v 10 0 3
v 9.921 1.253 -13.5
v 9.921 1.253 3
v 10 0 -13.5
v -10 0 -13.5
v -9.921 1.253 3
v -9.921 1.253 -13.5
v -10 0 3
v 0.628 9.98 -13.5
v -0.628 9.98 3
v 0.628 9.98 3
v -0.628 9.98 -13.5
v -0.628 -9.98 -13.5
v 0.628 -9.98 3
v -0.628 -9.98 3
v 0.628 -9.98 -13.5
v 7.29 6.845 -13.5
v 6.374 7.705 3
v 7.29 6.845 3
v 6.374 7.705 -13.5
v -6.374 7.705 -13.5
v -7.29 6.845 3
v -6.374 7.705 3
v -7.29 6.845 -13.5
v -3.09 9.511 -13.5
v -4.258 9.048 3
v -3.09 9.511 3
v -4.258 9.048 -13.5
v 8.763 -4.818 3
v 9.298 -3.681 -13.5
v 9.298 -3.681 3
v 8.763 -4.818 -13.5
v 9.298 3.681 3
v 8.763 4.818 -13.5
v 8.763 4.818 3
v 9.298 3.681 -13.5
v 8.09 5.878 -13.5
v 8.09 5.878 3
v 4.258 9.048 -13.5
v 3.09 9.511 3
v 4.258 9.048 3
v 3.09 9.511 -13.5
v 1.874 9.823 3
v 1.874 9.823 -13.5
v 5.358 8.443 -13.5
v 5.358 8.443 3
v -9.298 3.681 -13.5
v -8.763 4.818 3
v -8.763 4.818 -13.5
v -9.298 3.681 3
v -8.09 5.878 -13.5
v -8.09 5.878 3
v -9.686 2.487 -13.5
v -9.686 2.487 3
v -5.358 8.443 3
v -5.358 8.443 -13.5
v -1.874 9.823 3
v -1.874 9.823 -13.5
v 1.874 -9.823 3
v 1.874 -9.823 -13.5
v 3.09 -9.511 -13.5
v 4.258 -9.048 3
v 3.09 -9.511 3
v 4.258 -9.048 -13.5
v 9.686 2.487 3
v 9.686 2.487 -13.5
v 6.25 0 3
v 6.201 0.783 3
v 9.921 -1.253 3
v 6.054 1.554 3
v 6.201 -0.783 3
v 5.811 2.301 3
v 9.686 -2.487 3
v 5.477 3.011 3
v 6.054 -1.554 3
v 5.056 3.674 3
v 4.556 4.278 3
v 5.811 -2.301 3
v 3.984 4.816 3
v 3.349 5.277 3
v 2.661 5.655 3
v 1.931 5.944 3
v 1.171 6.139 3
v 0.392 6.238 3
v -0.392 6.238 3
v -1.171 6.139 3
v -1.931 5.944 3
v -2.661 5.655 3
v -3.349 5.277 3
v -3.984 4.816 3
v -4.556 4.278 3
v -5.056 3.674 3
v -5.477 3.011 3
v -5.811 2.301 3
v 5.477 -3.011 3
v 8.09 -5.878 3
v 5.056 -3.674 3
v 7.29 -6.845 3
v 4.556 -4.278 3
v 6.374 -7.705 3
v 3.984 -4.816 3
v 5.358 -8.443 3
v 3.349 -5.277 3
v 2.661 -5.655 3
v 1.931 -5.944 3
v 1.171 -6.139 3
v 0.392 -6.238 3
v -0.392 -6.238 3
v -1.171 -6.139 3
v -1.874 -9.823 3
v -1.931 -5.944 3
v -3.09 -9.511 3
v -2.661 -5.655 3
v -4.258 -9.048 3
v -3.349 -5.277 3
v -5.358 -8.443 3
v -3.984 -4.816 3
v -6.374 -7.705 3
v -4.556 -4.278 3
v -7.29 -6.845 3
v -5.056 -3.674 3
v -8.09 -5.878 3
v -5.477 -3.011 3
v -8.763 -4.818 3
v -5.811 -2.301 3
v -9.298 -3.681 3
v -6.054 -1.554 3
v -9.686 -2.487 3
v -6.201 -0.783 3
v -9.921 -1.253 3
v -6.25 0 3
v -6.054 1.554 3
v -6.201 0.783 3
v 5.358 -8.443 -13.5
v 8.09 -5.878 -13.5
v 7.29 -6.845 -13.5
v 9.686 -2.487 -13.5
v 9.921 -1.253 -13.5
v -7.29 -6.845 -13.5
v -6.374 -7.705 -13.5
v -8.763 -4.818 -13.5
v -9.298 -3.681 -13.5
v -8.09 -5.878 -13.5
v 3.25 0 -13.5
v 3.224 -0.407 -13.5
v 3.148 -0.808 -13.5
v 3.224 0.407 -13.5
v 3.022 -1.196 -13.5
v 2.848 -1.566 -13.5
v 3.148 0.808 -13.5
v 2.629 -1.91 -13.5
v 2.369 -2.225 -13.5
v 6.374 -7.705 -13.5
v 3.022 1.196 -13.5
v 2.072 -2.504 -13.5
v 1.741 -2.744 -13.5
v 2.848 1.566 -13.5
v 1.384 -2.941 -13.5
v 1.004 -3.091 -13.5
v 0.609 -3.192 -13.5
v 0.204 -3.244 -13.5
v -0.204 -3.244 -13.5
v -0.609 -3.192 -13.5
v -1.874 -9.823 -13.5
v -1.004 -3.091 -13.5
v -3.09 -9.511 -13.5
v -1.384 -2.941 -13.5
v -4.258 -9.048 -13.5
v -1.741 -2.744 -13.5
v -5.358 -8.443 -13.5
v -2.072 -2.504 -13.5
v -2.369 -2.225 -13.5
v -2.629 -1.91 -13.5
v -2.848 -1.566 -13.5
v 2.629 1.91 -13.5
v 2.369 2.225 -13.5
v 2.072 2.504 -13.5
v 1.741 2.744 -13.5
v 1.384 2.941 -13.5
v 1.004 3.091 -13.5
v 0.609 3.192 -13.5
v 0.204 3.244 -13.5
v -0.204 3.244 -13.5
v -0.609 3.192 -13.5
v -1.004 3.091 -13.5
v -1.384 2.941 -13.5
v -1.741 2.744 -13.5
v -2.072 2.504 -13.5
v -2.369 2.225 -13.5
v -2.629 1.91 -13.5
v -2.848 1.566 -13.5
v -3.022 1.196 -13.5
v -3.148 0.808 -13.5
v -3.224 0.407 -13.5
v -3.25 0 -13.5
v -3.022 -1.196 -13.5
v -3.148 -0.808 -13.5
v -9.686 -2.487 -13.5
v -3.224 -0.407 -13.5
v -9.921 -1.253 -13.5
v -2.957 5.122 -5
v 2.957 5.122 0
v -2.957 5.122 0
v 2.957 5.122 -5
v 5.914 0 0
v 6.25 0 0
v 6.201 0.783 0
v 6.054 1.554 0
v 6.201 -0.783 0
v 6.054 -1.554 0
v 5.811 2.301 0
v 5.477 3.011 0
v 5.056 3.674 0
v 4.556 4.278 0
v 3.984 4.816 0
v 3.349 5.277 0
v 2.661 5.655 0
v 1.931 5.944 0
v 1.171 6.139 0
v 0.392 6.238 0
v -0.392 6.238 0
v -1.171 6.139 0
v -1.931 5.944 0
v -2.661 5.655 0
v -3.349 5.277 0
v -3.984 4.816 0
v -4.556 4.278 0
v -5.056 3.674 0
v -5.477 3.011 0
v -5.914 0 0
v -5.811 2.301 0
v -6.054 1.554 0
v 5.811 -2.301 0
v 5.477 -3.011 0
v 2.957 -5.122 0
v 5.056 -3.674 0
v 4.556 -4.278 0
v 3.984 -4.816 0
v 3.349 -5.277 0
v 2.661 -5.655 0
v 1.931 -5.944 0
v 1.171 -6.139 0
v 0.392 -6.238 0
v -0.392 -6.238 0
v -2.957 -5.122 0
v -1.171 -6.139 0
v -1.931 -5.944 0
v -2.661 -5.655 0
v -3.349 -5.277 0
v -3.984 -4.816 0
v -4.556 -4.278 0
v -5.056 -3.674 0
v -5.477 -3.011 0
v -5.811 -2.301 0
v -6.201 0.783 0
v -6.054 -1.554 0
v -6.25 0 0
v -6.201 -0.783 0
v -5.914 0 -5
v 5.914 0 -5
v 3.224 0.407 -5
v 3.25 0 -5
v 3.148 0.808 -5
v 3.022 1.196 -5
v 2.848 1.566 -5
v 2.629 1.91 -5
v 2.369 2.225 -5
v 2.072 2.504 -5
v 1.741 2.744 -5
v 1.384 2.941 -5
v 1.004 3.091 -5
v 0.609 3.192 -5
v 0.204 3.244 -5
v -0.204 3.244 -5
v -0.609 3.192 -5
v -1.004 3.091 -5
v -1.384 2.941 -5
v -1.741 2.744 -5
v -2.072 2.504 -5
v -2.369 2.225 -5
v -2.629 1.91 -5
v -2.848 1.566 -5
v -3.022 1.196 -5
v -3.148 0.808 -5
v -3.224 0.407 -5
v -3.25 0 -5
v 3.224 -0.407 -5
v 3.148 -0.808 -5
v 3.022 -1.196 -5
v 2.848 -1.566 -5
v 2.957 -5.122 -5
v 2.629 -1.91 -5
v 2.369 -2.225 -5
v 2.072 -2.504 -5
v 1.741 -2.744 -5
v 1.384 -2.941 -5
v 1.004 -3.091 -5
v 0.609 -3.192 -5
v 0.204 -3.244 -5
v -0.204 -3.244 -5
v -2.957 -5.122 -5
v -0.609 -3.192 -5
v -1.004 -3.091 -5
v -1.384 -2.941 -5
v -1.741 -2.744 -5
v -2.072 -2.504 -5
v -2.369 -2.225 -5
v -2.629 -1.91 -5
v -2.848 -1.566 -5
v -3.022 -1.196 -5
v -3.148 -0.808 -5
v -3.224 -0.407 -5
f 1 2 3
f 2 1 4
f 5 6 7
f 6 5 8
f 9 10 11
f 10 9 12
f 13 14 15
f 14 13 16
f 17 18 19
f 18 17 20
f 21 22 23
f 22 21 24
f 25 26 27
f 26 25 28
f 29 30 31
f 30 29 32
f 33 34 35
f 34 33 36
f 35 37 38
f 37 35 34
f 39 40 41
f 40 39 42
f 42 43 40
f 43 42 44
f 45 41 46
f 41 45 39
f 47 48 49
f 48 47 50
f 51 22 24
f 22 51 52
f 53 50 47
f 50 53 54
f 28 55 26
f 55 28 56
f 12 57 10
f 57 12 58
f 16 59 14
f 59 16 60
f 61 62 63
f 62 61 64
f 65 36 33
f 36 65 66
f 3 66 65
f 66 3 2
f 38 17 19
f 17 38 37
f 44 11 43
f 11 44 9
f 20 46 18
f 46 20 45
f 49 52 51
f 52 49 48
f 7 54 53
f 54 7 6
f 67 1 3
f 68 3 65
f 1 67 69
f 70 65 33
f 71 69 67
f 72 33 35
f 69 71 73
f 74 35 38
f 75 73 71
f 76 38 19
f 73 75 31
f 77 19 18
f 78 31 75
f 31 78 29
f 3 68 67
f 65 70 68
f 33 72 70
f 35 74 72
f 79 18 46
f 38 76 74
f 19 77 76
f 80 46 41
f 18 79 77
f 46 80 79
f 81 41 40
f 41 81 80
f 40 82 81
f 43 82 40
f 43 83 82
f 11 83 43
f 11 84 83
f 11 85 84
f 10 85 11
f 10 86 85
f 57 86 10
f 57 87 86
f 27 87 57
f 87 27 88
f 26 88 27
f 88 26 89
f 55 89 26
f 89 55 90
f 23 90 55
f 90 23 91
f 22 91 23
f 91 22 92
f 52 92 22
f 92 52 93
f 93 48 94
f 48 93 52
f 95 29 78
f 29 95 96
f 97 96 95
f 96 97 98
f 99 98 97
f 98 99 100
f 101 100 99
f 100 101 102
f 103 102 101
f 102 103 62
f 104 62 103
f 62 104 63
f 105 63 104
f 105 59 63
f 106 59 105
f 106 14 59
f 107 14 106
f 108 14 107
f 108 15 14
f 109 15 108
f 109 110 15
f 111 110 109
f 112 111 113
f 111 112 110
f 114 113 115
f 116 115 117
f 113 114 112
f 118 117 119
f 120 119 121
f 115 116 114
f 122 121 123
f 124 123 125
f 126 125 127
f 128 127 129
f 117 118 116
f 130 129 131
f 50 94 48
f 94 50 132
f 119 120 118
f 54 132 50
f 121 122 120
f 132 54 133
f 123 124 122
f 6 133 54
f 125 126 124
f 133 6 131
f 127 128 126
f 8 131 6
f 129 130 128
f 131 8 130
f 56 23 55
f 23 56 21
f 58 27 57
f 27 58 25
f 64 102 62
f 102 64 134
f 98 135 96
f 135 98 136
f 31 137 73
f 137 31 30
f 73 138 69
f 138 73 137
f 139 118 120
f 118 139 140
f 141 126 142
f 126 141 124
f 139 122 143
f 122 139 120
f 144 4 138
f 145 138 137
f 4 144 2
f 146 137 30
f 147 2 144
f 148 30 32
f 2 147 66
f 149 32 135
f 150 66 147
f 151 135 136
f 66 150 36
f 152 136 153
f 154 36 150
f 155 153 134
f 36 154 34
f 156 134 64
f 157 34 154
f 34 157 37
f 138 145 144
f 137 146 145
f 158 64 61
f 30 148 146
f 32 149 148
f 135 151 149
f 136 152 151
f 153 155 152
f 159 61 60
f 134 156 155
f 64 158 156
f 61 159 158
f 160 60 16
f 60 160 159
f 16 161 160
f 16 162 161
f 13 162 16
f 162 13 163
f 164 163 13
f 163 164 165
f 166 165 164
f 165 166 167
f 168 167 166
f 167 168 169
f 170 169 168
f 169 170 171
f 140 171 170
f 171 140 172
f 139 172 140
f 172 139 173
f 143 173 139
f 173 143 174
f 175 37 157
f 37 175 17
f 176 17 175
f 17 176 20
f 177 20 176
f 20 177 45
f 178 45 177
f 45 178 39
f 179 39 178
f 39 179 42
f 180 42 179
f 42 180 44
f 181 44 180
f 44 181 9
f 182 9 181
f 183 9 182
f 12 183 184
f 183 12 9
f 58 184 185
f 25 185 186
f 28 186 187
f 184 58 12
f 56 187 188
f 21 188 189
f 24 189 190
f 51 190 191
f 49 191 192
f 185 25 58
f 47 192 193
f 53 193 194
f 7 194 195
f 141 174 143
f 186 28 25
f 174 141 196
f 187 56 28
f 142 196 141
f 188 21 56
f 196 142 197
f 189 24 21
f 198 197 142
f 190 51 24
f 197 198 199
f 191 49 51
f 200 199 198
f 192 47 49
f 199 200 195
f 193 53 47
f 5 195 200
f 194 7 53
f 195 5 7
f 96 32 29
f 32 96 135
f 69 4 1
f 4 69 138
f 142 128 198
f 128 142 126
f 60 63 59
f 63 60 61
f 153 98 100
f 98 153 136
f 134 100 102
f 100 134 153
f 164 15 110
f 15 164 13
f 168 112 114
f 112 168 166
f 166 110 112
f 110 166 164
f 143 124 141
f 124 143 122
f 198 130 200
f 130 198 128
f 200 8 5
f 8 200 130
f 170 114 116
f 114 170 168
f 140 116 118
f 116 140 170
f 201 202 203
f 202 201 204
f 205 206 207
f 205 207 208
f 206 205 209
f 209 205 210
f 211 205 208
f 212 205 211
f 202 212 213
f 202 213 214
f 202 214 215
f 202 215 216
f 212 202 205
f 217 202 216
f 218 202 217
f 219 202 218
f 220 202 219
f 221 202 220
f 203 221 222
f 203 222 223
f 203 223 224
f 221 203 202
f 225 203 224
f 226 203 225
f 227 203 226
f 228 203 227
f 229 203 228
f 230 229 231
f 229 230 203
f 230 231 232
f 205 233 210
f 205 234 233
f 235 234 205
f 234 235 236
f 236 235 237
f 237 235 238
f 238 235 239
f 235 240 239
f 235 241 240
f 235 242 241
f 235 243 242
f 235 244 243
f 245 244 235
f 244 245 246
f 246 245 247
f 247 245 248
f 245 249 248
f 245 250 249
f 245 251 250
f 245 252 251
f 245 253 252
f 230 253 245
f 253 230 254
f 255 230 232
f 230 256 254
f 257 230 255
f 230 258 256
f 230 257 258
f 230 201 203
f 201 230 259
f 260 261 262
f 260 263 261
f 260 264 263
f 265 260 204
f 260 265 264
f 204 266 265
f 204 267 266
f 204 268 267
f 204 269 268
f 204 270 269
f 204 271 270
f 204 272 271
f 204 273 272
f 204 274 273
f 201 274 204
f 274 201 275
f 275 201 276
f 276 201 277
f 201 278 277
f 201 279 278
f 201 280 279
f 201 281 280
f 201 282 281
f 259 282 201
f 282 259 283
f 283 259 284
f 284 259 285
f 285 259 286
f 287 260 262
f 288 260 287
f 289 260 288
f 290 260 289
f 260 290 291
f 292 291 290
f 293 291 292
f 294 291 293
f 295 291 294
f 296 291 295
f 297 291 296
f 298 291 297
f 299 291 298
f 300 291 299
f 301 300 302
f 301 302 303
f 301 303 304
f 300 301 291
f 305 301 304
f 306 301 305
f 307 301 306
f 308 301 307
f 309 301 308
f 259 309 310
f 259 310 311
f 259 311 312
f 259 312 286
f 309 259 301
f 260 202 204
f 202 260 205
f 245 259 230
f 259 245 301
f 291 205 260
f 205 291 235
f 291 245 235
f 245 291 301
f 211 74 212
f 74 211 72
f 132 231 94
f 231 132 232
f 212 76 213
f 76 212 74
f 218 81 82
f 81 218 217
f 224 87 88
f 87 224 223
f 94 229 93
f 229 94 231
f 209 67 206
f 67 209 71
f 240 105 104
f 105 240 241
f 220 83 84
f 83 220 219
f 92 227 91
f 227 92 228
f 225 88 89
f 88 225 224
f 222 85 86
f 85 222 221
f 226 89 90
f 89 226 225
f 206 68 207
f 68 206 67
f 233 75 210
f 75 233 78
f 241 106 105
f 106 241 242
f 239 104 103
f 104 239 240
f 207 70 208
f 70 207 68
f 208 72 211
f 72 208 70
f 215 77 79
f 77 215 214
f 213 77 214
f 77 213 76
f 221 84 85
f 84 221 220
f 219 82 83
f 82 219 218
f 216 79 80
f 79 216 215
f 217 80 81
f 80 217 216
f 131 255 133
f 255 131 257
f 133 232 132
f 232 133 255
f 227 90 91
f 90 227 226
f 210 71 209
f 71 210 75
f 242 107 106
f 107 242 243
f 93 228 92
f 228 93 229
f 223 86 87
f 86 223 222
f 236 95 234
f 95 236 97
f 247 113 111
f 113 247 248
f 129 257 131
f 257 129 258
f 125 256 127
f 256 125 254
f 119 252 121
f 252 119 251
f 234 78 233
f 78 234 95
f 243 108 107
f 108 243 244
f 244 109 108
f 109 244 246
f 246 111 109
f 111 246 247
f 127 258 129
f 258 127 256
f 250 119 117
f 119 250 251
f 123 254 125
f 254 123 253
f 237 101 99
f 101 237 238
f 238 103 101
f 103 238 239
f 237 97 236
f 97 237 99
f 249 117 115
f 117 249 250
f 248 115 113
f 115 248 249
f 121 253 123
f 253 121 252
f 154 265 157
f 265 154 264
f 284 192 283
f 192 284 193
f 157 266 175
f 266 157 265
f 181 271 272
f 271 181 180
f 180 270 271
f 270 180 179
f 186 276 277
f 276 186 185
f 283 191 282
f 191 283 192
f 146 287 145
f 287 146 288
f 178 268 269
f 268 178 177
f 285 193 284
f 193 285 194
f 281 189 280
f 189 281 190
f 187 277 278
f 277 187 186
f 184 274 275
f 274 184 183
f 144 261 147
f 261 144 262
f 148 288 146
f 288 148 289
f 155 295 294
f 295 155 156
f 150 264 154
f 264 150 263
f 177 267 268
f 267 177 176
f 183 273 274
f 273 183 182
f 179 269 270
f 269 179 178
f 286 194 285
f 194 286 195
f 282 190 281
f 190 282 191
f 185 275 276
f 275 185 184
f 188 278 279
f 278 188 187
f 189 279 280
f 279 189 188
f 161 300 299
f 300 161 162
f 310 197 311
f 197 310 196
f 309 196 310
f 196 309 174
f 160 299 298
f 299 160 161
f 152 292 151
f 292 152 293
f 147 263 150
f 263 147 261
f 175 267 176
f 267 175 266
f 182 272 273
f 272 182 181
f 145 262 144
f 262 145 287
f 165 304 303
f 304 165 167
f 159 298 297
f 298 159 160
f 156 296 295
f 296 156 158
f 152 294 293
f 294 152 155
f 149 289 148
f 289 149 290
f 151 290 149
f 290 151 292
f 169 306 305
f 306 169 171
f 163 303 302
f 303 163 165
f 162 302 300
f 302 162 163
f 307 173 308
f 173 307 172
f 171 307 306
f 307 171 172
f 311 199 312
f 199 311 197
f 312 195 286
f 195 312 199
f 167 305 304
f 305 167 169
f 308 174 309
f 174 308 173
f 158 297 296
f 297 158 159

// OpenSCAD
$fn = 50;


difference() {
	union() {
		translate(v = [0, 0, -13.5000000000]) {
			cylinder(h = 16.5000000000, r = 10.0000000000);
		}
		#translate(v = [0, 0, -15.0000000000]) {
			cylinder(h = 15, r = 2.8750000000);
		}
	}
	union() {
		translate(v = [0, 0, 0]) {
			rotate(a = [0, 0, 0]) {
				difference() {
					union() {
						translate(v = [0, 0, -5]) {
							linear_extrude(height = 5) {
								polygon(points = [[5.9142500000, 0.0000000000], [2.9571250000, 5.1218907443], [-2.9571250000, 5.1218907443], [-5.9142500000, 0.0000000000], [-2.9571250000, -5.1218907443], [2.9571250000, -5.1218907443]]);
							}
						}
					}
					union();
				}
			}
		}
		#cylinder(h = 3, r = 6.2500000000);
		#translate(v = [0, 0, -100.0000000000]) {
			cylinder(h = 200, r = 3.2500000000);
		}
	}
}
